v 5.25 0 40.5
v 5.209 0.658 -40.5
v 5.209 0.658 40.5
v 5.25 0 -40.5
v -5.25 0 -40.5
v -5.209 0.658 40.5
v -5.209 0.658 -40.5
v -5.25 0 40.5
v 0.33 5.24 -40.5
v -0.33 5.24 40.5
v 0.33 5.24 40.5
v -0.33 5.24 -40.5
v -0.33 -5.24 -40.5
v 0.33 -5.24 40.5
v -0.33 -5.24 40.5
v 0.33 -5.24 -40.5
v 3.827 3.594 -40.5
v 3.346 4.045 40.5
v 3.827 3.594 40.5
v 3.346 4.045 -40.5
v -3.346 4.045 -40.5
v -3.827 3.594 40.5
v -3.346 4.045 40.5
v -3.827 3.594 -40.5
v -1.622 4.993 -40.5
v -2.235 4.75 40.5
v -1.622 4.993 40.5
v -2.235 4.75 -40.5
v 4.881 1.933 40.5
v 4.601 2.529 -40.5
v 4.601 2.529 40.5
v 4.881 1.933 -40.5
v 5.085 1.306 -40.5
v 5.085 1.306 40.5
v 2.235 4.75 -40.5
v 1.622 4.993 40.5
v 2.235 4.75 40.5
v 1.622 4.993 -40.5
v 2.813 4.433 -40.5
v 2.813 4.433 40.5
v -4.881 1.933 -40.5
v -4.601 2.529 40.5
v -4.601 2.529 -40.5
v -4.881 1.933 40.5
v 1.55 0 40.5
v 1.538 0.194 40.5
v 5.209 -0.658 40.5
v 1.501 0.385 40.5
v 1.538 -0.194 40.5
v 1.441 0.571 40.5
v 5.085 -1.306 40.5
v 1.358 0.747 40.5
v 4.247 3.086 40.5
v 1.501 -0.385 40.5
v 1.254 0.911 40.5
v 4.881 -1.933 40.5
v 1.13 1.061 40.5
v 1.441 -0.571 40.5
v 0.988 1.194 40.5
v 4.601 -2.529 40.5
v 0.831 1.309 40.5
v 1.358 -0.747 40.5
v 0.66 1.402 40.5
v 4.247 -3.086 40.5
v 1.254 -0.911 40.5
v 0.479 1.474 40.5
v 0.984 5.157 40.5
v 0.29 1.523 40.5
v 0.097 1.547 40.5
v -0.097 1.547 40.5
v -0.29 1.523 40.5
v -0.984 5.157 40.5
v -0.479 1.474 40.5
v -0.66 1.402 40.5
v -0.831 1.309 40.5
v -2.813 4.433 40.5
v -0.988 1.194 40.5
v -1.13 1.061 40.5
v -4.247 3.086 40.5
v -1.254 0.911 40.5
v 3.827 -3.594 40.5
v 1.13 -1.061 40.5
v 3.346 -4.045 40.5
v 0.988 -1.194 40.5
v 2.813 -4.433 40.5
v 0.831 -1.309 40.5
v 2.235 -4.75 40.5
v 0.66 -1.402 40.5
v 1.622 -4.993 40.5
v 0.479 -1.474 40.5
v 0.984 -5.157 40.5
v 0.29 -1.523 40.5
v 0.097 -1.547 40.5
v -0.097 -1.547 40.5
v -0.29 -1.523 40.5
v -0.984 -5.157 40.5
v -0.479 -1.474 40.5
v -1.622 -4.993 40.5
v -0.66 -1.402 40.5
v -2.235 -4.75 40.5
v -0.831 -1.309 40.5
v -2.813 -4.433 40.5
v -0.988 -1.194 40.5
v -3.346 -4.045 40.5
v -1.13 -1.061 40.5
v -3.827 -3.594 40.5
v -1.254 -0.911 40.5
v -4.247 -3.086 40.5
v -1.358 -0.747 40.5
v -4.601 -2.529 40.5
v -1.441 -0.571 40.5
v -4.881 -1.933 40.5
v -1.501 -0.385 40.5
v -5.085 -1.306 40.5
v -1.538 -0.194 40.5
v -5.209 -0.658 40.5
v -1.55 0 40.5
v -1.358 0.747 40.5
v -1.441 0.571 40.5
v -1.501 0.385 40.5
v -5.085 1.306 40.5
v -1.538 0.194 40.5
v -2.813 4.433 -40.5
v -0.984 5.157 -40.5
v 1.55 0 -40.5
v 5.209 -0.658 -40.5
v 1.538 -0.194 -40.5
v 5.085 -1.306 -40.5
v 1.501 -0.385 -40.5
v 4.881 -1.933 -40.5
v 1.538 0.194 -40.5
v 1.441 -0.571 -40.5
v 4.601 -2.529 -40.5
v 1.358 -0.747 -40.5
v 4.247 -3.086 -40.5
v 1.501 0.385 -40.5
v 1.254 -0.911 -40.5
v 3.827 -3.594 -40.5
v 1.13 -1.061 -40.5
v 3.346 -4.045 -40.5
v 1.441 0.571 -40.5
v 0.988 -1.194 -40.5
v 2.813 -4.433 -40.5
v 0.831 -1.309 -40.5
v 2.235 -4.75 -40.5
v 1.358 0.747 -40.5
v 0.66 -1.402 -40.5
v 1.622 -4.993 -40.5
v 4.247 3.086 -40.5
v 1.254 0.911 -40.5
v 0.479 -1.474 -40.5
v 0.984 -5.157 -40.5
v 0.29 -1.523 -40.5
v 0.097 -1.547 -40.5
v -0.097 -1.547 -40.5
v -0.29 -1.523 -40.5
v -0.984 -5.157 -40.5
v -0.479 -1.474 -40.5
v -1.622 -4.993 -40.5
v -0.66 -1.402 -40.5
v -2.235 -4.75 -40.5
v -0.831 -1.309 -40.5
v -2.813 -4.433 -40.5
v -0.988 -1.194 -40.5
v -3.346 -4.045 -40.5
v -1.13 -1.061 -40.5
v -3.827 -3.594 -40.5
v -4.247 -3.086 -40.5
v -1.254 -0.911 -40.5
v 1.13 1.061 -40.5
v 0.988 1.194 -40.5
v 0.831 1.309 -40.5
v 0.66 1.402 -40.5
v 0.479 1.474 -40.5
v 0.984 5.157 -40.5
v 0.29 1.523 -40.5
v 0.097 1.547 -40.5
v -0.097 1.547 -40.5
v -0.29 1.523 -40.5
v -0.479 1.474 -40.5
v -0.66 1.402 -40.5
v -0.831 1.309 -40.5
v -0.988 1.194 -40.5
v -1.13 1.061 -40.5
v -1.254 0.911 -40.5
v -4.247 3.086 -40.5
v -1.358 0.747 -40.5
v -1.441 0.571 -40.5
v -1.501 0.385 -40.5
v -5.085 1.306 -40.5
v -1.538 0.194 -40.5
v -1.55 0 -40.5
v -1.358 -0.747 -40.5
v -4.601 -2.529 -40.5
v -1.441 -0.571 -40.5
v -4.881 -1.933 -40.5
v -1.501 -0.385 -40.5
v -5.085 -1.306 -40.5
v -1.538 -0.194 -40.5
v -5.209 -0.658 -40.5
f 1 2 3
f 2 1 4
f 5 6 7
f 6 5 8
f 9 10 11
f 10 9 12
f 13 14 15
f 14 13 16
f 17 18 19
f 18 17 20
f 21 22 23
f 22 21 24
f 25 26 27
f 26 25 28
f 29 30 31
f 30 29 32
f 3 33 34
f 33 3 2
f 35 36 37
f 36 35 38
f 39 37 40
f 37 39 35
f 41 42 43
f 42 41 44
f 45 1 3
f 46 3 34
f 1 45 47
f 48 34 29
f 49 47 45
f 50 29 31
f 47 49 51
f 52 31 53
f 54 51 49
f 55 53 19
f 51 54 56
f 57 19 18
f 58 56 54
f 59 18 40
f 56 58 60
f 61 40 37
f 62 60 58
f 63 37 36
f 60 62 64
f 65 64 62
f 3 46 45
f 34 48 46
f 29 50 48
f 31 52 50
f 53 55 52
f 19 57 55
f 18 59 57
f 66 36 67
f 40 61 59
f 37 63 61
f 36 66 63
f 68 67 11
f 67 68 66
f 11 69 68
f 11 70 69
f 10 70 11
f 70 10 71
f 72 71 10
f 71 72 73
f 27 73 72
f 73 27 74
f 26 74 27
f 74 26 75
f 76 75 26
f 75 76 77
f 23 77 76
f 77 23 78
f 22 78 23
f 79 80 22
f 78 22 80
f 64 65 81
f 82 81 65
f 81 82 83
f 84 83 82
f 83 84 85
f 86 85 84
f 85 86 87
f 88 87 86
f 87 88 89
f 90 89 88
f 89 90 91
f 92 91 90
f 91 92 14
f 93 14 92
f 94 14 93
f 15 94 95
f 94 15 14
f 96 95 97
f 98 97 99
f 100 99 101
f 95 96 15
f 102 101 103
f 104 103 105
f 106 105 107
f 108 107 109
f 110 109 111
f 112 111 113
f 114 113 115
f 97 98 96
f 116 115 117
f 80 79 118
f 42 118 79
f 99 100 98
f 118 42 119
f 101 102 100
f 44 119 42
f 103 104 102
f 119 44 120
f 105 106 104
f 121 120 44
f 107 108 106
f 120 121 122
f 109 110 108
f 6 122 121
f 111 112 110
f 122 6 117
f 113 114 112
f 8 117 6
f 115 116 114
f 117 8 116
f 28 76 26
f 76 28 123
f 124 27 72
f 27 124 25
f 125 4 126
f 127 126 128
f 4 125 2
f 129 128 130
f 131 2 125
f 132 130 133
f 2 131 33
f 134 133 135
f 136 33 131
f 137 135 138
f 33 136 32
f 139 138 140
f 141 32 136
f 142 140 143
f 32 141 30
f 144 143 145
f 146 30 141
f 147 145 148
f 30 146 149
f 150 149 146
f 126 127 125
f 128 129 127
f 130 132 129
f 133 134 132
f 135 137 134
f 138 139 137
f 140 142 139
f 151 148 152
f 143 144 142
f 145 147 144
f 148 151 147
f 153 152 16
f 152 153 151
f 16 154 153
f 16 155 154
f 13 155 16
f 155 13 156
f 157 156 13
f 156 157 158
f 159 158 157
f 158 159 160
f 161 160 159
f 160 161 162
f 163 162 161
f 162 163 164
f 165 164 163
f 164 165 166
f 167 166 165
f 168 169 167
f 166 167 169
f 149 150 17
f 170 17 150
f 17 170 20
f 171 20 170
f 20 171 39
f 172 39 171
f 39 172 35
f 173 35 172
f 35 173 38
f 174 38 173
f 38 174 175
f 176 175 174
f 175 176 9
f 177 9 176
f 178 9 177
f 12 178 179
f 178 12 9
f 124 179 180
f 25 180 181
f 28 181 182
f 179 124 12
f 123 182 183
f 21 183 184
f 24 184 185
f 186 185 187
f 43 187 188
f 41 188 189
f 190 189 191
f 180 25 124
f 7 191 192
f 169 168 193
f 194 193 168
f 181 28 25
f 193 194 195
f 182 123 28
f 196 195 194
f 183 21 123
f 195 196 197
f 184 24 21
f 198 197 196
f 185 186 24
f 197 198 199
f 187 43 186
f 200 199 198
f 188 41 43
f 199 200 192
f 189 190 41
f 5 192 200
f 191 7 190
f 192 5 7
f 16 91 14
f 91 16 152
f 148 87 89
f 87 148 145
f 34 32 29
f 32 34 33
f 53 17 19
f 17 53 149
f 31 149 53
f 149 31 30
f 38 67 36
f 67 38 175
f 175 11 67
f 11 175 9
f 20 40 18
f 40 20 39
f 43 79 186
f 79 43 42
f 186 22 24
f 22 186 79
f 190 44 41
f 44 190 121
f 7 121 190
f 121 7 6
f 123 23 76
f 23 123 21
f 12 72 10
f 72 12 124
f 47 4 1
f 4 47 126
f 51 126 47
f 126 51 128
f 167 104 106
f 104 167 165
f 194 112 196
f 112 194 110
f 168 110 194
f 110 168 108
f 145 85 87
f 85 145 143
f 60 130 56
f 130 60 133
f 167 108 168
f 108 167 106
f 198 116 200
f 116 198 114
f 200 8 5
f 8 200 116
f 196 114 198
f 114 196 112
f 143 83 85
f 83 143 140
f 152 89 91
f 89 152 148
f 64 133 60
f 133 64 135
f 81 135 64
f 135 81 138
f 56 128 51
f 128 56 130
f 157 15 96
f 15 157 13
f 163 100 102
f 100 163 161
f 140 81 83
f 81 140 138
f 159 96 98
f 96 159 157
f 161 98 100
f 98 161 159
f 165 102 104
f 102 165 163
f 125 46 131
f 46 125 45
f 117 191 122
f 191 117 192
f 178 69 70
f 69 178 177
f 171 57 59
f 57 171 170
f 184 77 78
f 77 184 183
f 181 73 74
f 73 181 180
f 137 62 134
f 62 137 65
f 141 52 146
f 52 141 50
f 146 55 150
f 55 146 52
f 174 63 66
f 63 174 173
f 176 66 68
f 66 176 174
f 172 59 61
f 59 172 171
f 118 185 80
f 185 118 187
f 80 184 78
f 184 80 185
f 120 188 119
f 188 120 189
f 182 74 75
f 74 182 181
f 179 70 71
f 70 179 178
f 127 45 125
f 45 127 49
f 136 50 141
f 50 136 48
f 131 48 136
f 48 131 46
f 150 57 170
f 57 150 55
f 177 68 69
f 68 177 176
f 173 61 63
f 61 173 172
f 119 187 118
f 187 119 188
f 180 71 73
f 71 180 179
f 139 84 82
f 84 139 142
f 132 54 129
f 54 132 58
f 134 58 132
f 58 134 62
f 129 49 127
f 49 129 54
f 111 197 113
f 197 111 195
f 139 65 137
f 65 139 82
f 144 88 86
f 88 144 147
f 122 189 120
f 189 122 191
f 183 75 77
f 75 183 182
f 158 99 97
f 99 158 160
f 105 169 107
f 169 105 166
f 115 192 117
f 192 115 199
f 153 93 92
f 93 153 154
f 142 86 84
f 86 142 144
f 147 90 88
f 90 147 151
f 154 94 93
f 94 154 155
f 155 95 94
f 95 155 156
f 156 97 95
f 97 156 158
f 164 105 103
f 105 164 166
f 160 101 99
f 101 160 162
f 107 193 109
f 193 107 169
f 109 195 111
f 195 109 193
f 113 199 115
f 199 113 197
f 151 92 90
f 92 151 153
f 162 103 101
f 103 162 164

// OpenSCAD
$fn = 50;


difference() {
	union() {
		translate(v = [0, 0, -40.5000000000]) {
			cylinder(h = 81, r = 5.2500000000);
		}
	}
	union() {
		translate(v = [0, 0, -100.0000000000]) {
			cylinder(h = 200, r = 1.5500000000);
		}
	}
}
